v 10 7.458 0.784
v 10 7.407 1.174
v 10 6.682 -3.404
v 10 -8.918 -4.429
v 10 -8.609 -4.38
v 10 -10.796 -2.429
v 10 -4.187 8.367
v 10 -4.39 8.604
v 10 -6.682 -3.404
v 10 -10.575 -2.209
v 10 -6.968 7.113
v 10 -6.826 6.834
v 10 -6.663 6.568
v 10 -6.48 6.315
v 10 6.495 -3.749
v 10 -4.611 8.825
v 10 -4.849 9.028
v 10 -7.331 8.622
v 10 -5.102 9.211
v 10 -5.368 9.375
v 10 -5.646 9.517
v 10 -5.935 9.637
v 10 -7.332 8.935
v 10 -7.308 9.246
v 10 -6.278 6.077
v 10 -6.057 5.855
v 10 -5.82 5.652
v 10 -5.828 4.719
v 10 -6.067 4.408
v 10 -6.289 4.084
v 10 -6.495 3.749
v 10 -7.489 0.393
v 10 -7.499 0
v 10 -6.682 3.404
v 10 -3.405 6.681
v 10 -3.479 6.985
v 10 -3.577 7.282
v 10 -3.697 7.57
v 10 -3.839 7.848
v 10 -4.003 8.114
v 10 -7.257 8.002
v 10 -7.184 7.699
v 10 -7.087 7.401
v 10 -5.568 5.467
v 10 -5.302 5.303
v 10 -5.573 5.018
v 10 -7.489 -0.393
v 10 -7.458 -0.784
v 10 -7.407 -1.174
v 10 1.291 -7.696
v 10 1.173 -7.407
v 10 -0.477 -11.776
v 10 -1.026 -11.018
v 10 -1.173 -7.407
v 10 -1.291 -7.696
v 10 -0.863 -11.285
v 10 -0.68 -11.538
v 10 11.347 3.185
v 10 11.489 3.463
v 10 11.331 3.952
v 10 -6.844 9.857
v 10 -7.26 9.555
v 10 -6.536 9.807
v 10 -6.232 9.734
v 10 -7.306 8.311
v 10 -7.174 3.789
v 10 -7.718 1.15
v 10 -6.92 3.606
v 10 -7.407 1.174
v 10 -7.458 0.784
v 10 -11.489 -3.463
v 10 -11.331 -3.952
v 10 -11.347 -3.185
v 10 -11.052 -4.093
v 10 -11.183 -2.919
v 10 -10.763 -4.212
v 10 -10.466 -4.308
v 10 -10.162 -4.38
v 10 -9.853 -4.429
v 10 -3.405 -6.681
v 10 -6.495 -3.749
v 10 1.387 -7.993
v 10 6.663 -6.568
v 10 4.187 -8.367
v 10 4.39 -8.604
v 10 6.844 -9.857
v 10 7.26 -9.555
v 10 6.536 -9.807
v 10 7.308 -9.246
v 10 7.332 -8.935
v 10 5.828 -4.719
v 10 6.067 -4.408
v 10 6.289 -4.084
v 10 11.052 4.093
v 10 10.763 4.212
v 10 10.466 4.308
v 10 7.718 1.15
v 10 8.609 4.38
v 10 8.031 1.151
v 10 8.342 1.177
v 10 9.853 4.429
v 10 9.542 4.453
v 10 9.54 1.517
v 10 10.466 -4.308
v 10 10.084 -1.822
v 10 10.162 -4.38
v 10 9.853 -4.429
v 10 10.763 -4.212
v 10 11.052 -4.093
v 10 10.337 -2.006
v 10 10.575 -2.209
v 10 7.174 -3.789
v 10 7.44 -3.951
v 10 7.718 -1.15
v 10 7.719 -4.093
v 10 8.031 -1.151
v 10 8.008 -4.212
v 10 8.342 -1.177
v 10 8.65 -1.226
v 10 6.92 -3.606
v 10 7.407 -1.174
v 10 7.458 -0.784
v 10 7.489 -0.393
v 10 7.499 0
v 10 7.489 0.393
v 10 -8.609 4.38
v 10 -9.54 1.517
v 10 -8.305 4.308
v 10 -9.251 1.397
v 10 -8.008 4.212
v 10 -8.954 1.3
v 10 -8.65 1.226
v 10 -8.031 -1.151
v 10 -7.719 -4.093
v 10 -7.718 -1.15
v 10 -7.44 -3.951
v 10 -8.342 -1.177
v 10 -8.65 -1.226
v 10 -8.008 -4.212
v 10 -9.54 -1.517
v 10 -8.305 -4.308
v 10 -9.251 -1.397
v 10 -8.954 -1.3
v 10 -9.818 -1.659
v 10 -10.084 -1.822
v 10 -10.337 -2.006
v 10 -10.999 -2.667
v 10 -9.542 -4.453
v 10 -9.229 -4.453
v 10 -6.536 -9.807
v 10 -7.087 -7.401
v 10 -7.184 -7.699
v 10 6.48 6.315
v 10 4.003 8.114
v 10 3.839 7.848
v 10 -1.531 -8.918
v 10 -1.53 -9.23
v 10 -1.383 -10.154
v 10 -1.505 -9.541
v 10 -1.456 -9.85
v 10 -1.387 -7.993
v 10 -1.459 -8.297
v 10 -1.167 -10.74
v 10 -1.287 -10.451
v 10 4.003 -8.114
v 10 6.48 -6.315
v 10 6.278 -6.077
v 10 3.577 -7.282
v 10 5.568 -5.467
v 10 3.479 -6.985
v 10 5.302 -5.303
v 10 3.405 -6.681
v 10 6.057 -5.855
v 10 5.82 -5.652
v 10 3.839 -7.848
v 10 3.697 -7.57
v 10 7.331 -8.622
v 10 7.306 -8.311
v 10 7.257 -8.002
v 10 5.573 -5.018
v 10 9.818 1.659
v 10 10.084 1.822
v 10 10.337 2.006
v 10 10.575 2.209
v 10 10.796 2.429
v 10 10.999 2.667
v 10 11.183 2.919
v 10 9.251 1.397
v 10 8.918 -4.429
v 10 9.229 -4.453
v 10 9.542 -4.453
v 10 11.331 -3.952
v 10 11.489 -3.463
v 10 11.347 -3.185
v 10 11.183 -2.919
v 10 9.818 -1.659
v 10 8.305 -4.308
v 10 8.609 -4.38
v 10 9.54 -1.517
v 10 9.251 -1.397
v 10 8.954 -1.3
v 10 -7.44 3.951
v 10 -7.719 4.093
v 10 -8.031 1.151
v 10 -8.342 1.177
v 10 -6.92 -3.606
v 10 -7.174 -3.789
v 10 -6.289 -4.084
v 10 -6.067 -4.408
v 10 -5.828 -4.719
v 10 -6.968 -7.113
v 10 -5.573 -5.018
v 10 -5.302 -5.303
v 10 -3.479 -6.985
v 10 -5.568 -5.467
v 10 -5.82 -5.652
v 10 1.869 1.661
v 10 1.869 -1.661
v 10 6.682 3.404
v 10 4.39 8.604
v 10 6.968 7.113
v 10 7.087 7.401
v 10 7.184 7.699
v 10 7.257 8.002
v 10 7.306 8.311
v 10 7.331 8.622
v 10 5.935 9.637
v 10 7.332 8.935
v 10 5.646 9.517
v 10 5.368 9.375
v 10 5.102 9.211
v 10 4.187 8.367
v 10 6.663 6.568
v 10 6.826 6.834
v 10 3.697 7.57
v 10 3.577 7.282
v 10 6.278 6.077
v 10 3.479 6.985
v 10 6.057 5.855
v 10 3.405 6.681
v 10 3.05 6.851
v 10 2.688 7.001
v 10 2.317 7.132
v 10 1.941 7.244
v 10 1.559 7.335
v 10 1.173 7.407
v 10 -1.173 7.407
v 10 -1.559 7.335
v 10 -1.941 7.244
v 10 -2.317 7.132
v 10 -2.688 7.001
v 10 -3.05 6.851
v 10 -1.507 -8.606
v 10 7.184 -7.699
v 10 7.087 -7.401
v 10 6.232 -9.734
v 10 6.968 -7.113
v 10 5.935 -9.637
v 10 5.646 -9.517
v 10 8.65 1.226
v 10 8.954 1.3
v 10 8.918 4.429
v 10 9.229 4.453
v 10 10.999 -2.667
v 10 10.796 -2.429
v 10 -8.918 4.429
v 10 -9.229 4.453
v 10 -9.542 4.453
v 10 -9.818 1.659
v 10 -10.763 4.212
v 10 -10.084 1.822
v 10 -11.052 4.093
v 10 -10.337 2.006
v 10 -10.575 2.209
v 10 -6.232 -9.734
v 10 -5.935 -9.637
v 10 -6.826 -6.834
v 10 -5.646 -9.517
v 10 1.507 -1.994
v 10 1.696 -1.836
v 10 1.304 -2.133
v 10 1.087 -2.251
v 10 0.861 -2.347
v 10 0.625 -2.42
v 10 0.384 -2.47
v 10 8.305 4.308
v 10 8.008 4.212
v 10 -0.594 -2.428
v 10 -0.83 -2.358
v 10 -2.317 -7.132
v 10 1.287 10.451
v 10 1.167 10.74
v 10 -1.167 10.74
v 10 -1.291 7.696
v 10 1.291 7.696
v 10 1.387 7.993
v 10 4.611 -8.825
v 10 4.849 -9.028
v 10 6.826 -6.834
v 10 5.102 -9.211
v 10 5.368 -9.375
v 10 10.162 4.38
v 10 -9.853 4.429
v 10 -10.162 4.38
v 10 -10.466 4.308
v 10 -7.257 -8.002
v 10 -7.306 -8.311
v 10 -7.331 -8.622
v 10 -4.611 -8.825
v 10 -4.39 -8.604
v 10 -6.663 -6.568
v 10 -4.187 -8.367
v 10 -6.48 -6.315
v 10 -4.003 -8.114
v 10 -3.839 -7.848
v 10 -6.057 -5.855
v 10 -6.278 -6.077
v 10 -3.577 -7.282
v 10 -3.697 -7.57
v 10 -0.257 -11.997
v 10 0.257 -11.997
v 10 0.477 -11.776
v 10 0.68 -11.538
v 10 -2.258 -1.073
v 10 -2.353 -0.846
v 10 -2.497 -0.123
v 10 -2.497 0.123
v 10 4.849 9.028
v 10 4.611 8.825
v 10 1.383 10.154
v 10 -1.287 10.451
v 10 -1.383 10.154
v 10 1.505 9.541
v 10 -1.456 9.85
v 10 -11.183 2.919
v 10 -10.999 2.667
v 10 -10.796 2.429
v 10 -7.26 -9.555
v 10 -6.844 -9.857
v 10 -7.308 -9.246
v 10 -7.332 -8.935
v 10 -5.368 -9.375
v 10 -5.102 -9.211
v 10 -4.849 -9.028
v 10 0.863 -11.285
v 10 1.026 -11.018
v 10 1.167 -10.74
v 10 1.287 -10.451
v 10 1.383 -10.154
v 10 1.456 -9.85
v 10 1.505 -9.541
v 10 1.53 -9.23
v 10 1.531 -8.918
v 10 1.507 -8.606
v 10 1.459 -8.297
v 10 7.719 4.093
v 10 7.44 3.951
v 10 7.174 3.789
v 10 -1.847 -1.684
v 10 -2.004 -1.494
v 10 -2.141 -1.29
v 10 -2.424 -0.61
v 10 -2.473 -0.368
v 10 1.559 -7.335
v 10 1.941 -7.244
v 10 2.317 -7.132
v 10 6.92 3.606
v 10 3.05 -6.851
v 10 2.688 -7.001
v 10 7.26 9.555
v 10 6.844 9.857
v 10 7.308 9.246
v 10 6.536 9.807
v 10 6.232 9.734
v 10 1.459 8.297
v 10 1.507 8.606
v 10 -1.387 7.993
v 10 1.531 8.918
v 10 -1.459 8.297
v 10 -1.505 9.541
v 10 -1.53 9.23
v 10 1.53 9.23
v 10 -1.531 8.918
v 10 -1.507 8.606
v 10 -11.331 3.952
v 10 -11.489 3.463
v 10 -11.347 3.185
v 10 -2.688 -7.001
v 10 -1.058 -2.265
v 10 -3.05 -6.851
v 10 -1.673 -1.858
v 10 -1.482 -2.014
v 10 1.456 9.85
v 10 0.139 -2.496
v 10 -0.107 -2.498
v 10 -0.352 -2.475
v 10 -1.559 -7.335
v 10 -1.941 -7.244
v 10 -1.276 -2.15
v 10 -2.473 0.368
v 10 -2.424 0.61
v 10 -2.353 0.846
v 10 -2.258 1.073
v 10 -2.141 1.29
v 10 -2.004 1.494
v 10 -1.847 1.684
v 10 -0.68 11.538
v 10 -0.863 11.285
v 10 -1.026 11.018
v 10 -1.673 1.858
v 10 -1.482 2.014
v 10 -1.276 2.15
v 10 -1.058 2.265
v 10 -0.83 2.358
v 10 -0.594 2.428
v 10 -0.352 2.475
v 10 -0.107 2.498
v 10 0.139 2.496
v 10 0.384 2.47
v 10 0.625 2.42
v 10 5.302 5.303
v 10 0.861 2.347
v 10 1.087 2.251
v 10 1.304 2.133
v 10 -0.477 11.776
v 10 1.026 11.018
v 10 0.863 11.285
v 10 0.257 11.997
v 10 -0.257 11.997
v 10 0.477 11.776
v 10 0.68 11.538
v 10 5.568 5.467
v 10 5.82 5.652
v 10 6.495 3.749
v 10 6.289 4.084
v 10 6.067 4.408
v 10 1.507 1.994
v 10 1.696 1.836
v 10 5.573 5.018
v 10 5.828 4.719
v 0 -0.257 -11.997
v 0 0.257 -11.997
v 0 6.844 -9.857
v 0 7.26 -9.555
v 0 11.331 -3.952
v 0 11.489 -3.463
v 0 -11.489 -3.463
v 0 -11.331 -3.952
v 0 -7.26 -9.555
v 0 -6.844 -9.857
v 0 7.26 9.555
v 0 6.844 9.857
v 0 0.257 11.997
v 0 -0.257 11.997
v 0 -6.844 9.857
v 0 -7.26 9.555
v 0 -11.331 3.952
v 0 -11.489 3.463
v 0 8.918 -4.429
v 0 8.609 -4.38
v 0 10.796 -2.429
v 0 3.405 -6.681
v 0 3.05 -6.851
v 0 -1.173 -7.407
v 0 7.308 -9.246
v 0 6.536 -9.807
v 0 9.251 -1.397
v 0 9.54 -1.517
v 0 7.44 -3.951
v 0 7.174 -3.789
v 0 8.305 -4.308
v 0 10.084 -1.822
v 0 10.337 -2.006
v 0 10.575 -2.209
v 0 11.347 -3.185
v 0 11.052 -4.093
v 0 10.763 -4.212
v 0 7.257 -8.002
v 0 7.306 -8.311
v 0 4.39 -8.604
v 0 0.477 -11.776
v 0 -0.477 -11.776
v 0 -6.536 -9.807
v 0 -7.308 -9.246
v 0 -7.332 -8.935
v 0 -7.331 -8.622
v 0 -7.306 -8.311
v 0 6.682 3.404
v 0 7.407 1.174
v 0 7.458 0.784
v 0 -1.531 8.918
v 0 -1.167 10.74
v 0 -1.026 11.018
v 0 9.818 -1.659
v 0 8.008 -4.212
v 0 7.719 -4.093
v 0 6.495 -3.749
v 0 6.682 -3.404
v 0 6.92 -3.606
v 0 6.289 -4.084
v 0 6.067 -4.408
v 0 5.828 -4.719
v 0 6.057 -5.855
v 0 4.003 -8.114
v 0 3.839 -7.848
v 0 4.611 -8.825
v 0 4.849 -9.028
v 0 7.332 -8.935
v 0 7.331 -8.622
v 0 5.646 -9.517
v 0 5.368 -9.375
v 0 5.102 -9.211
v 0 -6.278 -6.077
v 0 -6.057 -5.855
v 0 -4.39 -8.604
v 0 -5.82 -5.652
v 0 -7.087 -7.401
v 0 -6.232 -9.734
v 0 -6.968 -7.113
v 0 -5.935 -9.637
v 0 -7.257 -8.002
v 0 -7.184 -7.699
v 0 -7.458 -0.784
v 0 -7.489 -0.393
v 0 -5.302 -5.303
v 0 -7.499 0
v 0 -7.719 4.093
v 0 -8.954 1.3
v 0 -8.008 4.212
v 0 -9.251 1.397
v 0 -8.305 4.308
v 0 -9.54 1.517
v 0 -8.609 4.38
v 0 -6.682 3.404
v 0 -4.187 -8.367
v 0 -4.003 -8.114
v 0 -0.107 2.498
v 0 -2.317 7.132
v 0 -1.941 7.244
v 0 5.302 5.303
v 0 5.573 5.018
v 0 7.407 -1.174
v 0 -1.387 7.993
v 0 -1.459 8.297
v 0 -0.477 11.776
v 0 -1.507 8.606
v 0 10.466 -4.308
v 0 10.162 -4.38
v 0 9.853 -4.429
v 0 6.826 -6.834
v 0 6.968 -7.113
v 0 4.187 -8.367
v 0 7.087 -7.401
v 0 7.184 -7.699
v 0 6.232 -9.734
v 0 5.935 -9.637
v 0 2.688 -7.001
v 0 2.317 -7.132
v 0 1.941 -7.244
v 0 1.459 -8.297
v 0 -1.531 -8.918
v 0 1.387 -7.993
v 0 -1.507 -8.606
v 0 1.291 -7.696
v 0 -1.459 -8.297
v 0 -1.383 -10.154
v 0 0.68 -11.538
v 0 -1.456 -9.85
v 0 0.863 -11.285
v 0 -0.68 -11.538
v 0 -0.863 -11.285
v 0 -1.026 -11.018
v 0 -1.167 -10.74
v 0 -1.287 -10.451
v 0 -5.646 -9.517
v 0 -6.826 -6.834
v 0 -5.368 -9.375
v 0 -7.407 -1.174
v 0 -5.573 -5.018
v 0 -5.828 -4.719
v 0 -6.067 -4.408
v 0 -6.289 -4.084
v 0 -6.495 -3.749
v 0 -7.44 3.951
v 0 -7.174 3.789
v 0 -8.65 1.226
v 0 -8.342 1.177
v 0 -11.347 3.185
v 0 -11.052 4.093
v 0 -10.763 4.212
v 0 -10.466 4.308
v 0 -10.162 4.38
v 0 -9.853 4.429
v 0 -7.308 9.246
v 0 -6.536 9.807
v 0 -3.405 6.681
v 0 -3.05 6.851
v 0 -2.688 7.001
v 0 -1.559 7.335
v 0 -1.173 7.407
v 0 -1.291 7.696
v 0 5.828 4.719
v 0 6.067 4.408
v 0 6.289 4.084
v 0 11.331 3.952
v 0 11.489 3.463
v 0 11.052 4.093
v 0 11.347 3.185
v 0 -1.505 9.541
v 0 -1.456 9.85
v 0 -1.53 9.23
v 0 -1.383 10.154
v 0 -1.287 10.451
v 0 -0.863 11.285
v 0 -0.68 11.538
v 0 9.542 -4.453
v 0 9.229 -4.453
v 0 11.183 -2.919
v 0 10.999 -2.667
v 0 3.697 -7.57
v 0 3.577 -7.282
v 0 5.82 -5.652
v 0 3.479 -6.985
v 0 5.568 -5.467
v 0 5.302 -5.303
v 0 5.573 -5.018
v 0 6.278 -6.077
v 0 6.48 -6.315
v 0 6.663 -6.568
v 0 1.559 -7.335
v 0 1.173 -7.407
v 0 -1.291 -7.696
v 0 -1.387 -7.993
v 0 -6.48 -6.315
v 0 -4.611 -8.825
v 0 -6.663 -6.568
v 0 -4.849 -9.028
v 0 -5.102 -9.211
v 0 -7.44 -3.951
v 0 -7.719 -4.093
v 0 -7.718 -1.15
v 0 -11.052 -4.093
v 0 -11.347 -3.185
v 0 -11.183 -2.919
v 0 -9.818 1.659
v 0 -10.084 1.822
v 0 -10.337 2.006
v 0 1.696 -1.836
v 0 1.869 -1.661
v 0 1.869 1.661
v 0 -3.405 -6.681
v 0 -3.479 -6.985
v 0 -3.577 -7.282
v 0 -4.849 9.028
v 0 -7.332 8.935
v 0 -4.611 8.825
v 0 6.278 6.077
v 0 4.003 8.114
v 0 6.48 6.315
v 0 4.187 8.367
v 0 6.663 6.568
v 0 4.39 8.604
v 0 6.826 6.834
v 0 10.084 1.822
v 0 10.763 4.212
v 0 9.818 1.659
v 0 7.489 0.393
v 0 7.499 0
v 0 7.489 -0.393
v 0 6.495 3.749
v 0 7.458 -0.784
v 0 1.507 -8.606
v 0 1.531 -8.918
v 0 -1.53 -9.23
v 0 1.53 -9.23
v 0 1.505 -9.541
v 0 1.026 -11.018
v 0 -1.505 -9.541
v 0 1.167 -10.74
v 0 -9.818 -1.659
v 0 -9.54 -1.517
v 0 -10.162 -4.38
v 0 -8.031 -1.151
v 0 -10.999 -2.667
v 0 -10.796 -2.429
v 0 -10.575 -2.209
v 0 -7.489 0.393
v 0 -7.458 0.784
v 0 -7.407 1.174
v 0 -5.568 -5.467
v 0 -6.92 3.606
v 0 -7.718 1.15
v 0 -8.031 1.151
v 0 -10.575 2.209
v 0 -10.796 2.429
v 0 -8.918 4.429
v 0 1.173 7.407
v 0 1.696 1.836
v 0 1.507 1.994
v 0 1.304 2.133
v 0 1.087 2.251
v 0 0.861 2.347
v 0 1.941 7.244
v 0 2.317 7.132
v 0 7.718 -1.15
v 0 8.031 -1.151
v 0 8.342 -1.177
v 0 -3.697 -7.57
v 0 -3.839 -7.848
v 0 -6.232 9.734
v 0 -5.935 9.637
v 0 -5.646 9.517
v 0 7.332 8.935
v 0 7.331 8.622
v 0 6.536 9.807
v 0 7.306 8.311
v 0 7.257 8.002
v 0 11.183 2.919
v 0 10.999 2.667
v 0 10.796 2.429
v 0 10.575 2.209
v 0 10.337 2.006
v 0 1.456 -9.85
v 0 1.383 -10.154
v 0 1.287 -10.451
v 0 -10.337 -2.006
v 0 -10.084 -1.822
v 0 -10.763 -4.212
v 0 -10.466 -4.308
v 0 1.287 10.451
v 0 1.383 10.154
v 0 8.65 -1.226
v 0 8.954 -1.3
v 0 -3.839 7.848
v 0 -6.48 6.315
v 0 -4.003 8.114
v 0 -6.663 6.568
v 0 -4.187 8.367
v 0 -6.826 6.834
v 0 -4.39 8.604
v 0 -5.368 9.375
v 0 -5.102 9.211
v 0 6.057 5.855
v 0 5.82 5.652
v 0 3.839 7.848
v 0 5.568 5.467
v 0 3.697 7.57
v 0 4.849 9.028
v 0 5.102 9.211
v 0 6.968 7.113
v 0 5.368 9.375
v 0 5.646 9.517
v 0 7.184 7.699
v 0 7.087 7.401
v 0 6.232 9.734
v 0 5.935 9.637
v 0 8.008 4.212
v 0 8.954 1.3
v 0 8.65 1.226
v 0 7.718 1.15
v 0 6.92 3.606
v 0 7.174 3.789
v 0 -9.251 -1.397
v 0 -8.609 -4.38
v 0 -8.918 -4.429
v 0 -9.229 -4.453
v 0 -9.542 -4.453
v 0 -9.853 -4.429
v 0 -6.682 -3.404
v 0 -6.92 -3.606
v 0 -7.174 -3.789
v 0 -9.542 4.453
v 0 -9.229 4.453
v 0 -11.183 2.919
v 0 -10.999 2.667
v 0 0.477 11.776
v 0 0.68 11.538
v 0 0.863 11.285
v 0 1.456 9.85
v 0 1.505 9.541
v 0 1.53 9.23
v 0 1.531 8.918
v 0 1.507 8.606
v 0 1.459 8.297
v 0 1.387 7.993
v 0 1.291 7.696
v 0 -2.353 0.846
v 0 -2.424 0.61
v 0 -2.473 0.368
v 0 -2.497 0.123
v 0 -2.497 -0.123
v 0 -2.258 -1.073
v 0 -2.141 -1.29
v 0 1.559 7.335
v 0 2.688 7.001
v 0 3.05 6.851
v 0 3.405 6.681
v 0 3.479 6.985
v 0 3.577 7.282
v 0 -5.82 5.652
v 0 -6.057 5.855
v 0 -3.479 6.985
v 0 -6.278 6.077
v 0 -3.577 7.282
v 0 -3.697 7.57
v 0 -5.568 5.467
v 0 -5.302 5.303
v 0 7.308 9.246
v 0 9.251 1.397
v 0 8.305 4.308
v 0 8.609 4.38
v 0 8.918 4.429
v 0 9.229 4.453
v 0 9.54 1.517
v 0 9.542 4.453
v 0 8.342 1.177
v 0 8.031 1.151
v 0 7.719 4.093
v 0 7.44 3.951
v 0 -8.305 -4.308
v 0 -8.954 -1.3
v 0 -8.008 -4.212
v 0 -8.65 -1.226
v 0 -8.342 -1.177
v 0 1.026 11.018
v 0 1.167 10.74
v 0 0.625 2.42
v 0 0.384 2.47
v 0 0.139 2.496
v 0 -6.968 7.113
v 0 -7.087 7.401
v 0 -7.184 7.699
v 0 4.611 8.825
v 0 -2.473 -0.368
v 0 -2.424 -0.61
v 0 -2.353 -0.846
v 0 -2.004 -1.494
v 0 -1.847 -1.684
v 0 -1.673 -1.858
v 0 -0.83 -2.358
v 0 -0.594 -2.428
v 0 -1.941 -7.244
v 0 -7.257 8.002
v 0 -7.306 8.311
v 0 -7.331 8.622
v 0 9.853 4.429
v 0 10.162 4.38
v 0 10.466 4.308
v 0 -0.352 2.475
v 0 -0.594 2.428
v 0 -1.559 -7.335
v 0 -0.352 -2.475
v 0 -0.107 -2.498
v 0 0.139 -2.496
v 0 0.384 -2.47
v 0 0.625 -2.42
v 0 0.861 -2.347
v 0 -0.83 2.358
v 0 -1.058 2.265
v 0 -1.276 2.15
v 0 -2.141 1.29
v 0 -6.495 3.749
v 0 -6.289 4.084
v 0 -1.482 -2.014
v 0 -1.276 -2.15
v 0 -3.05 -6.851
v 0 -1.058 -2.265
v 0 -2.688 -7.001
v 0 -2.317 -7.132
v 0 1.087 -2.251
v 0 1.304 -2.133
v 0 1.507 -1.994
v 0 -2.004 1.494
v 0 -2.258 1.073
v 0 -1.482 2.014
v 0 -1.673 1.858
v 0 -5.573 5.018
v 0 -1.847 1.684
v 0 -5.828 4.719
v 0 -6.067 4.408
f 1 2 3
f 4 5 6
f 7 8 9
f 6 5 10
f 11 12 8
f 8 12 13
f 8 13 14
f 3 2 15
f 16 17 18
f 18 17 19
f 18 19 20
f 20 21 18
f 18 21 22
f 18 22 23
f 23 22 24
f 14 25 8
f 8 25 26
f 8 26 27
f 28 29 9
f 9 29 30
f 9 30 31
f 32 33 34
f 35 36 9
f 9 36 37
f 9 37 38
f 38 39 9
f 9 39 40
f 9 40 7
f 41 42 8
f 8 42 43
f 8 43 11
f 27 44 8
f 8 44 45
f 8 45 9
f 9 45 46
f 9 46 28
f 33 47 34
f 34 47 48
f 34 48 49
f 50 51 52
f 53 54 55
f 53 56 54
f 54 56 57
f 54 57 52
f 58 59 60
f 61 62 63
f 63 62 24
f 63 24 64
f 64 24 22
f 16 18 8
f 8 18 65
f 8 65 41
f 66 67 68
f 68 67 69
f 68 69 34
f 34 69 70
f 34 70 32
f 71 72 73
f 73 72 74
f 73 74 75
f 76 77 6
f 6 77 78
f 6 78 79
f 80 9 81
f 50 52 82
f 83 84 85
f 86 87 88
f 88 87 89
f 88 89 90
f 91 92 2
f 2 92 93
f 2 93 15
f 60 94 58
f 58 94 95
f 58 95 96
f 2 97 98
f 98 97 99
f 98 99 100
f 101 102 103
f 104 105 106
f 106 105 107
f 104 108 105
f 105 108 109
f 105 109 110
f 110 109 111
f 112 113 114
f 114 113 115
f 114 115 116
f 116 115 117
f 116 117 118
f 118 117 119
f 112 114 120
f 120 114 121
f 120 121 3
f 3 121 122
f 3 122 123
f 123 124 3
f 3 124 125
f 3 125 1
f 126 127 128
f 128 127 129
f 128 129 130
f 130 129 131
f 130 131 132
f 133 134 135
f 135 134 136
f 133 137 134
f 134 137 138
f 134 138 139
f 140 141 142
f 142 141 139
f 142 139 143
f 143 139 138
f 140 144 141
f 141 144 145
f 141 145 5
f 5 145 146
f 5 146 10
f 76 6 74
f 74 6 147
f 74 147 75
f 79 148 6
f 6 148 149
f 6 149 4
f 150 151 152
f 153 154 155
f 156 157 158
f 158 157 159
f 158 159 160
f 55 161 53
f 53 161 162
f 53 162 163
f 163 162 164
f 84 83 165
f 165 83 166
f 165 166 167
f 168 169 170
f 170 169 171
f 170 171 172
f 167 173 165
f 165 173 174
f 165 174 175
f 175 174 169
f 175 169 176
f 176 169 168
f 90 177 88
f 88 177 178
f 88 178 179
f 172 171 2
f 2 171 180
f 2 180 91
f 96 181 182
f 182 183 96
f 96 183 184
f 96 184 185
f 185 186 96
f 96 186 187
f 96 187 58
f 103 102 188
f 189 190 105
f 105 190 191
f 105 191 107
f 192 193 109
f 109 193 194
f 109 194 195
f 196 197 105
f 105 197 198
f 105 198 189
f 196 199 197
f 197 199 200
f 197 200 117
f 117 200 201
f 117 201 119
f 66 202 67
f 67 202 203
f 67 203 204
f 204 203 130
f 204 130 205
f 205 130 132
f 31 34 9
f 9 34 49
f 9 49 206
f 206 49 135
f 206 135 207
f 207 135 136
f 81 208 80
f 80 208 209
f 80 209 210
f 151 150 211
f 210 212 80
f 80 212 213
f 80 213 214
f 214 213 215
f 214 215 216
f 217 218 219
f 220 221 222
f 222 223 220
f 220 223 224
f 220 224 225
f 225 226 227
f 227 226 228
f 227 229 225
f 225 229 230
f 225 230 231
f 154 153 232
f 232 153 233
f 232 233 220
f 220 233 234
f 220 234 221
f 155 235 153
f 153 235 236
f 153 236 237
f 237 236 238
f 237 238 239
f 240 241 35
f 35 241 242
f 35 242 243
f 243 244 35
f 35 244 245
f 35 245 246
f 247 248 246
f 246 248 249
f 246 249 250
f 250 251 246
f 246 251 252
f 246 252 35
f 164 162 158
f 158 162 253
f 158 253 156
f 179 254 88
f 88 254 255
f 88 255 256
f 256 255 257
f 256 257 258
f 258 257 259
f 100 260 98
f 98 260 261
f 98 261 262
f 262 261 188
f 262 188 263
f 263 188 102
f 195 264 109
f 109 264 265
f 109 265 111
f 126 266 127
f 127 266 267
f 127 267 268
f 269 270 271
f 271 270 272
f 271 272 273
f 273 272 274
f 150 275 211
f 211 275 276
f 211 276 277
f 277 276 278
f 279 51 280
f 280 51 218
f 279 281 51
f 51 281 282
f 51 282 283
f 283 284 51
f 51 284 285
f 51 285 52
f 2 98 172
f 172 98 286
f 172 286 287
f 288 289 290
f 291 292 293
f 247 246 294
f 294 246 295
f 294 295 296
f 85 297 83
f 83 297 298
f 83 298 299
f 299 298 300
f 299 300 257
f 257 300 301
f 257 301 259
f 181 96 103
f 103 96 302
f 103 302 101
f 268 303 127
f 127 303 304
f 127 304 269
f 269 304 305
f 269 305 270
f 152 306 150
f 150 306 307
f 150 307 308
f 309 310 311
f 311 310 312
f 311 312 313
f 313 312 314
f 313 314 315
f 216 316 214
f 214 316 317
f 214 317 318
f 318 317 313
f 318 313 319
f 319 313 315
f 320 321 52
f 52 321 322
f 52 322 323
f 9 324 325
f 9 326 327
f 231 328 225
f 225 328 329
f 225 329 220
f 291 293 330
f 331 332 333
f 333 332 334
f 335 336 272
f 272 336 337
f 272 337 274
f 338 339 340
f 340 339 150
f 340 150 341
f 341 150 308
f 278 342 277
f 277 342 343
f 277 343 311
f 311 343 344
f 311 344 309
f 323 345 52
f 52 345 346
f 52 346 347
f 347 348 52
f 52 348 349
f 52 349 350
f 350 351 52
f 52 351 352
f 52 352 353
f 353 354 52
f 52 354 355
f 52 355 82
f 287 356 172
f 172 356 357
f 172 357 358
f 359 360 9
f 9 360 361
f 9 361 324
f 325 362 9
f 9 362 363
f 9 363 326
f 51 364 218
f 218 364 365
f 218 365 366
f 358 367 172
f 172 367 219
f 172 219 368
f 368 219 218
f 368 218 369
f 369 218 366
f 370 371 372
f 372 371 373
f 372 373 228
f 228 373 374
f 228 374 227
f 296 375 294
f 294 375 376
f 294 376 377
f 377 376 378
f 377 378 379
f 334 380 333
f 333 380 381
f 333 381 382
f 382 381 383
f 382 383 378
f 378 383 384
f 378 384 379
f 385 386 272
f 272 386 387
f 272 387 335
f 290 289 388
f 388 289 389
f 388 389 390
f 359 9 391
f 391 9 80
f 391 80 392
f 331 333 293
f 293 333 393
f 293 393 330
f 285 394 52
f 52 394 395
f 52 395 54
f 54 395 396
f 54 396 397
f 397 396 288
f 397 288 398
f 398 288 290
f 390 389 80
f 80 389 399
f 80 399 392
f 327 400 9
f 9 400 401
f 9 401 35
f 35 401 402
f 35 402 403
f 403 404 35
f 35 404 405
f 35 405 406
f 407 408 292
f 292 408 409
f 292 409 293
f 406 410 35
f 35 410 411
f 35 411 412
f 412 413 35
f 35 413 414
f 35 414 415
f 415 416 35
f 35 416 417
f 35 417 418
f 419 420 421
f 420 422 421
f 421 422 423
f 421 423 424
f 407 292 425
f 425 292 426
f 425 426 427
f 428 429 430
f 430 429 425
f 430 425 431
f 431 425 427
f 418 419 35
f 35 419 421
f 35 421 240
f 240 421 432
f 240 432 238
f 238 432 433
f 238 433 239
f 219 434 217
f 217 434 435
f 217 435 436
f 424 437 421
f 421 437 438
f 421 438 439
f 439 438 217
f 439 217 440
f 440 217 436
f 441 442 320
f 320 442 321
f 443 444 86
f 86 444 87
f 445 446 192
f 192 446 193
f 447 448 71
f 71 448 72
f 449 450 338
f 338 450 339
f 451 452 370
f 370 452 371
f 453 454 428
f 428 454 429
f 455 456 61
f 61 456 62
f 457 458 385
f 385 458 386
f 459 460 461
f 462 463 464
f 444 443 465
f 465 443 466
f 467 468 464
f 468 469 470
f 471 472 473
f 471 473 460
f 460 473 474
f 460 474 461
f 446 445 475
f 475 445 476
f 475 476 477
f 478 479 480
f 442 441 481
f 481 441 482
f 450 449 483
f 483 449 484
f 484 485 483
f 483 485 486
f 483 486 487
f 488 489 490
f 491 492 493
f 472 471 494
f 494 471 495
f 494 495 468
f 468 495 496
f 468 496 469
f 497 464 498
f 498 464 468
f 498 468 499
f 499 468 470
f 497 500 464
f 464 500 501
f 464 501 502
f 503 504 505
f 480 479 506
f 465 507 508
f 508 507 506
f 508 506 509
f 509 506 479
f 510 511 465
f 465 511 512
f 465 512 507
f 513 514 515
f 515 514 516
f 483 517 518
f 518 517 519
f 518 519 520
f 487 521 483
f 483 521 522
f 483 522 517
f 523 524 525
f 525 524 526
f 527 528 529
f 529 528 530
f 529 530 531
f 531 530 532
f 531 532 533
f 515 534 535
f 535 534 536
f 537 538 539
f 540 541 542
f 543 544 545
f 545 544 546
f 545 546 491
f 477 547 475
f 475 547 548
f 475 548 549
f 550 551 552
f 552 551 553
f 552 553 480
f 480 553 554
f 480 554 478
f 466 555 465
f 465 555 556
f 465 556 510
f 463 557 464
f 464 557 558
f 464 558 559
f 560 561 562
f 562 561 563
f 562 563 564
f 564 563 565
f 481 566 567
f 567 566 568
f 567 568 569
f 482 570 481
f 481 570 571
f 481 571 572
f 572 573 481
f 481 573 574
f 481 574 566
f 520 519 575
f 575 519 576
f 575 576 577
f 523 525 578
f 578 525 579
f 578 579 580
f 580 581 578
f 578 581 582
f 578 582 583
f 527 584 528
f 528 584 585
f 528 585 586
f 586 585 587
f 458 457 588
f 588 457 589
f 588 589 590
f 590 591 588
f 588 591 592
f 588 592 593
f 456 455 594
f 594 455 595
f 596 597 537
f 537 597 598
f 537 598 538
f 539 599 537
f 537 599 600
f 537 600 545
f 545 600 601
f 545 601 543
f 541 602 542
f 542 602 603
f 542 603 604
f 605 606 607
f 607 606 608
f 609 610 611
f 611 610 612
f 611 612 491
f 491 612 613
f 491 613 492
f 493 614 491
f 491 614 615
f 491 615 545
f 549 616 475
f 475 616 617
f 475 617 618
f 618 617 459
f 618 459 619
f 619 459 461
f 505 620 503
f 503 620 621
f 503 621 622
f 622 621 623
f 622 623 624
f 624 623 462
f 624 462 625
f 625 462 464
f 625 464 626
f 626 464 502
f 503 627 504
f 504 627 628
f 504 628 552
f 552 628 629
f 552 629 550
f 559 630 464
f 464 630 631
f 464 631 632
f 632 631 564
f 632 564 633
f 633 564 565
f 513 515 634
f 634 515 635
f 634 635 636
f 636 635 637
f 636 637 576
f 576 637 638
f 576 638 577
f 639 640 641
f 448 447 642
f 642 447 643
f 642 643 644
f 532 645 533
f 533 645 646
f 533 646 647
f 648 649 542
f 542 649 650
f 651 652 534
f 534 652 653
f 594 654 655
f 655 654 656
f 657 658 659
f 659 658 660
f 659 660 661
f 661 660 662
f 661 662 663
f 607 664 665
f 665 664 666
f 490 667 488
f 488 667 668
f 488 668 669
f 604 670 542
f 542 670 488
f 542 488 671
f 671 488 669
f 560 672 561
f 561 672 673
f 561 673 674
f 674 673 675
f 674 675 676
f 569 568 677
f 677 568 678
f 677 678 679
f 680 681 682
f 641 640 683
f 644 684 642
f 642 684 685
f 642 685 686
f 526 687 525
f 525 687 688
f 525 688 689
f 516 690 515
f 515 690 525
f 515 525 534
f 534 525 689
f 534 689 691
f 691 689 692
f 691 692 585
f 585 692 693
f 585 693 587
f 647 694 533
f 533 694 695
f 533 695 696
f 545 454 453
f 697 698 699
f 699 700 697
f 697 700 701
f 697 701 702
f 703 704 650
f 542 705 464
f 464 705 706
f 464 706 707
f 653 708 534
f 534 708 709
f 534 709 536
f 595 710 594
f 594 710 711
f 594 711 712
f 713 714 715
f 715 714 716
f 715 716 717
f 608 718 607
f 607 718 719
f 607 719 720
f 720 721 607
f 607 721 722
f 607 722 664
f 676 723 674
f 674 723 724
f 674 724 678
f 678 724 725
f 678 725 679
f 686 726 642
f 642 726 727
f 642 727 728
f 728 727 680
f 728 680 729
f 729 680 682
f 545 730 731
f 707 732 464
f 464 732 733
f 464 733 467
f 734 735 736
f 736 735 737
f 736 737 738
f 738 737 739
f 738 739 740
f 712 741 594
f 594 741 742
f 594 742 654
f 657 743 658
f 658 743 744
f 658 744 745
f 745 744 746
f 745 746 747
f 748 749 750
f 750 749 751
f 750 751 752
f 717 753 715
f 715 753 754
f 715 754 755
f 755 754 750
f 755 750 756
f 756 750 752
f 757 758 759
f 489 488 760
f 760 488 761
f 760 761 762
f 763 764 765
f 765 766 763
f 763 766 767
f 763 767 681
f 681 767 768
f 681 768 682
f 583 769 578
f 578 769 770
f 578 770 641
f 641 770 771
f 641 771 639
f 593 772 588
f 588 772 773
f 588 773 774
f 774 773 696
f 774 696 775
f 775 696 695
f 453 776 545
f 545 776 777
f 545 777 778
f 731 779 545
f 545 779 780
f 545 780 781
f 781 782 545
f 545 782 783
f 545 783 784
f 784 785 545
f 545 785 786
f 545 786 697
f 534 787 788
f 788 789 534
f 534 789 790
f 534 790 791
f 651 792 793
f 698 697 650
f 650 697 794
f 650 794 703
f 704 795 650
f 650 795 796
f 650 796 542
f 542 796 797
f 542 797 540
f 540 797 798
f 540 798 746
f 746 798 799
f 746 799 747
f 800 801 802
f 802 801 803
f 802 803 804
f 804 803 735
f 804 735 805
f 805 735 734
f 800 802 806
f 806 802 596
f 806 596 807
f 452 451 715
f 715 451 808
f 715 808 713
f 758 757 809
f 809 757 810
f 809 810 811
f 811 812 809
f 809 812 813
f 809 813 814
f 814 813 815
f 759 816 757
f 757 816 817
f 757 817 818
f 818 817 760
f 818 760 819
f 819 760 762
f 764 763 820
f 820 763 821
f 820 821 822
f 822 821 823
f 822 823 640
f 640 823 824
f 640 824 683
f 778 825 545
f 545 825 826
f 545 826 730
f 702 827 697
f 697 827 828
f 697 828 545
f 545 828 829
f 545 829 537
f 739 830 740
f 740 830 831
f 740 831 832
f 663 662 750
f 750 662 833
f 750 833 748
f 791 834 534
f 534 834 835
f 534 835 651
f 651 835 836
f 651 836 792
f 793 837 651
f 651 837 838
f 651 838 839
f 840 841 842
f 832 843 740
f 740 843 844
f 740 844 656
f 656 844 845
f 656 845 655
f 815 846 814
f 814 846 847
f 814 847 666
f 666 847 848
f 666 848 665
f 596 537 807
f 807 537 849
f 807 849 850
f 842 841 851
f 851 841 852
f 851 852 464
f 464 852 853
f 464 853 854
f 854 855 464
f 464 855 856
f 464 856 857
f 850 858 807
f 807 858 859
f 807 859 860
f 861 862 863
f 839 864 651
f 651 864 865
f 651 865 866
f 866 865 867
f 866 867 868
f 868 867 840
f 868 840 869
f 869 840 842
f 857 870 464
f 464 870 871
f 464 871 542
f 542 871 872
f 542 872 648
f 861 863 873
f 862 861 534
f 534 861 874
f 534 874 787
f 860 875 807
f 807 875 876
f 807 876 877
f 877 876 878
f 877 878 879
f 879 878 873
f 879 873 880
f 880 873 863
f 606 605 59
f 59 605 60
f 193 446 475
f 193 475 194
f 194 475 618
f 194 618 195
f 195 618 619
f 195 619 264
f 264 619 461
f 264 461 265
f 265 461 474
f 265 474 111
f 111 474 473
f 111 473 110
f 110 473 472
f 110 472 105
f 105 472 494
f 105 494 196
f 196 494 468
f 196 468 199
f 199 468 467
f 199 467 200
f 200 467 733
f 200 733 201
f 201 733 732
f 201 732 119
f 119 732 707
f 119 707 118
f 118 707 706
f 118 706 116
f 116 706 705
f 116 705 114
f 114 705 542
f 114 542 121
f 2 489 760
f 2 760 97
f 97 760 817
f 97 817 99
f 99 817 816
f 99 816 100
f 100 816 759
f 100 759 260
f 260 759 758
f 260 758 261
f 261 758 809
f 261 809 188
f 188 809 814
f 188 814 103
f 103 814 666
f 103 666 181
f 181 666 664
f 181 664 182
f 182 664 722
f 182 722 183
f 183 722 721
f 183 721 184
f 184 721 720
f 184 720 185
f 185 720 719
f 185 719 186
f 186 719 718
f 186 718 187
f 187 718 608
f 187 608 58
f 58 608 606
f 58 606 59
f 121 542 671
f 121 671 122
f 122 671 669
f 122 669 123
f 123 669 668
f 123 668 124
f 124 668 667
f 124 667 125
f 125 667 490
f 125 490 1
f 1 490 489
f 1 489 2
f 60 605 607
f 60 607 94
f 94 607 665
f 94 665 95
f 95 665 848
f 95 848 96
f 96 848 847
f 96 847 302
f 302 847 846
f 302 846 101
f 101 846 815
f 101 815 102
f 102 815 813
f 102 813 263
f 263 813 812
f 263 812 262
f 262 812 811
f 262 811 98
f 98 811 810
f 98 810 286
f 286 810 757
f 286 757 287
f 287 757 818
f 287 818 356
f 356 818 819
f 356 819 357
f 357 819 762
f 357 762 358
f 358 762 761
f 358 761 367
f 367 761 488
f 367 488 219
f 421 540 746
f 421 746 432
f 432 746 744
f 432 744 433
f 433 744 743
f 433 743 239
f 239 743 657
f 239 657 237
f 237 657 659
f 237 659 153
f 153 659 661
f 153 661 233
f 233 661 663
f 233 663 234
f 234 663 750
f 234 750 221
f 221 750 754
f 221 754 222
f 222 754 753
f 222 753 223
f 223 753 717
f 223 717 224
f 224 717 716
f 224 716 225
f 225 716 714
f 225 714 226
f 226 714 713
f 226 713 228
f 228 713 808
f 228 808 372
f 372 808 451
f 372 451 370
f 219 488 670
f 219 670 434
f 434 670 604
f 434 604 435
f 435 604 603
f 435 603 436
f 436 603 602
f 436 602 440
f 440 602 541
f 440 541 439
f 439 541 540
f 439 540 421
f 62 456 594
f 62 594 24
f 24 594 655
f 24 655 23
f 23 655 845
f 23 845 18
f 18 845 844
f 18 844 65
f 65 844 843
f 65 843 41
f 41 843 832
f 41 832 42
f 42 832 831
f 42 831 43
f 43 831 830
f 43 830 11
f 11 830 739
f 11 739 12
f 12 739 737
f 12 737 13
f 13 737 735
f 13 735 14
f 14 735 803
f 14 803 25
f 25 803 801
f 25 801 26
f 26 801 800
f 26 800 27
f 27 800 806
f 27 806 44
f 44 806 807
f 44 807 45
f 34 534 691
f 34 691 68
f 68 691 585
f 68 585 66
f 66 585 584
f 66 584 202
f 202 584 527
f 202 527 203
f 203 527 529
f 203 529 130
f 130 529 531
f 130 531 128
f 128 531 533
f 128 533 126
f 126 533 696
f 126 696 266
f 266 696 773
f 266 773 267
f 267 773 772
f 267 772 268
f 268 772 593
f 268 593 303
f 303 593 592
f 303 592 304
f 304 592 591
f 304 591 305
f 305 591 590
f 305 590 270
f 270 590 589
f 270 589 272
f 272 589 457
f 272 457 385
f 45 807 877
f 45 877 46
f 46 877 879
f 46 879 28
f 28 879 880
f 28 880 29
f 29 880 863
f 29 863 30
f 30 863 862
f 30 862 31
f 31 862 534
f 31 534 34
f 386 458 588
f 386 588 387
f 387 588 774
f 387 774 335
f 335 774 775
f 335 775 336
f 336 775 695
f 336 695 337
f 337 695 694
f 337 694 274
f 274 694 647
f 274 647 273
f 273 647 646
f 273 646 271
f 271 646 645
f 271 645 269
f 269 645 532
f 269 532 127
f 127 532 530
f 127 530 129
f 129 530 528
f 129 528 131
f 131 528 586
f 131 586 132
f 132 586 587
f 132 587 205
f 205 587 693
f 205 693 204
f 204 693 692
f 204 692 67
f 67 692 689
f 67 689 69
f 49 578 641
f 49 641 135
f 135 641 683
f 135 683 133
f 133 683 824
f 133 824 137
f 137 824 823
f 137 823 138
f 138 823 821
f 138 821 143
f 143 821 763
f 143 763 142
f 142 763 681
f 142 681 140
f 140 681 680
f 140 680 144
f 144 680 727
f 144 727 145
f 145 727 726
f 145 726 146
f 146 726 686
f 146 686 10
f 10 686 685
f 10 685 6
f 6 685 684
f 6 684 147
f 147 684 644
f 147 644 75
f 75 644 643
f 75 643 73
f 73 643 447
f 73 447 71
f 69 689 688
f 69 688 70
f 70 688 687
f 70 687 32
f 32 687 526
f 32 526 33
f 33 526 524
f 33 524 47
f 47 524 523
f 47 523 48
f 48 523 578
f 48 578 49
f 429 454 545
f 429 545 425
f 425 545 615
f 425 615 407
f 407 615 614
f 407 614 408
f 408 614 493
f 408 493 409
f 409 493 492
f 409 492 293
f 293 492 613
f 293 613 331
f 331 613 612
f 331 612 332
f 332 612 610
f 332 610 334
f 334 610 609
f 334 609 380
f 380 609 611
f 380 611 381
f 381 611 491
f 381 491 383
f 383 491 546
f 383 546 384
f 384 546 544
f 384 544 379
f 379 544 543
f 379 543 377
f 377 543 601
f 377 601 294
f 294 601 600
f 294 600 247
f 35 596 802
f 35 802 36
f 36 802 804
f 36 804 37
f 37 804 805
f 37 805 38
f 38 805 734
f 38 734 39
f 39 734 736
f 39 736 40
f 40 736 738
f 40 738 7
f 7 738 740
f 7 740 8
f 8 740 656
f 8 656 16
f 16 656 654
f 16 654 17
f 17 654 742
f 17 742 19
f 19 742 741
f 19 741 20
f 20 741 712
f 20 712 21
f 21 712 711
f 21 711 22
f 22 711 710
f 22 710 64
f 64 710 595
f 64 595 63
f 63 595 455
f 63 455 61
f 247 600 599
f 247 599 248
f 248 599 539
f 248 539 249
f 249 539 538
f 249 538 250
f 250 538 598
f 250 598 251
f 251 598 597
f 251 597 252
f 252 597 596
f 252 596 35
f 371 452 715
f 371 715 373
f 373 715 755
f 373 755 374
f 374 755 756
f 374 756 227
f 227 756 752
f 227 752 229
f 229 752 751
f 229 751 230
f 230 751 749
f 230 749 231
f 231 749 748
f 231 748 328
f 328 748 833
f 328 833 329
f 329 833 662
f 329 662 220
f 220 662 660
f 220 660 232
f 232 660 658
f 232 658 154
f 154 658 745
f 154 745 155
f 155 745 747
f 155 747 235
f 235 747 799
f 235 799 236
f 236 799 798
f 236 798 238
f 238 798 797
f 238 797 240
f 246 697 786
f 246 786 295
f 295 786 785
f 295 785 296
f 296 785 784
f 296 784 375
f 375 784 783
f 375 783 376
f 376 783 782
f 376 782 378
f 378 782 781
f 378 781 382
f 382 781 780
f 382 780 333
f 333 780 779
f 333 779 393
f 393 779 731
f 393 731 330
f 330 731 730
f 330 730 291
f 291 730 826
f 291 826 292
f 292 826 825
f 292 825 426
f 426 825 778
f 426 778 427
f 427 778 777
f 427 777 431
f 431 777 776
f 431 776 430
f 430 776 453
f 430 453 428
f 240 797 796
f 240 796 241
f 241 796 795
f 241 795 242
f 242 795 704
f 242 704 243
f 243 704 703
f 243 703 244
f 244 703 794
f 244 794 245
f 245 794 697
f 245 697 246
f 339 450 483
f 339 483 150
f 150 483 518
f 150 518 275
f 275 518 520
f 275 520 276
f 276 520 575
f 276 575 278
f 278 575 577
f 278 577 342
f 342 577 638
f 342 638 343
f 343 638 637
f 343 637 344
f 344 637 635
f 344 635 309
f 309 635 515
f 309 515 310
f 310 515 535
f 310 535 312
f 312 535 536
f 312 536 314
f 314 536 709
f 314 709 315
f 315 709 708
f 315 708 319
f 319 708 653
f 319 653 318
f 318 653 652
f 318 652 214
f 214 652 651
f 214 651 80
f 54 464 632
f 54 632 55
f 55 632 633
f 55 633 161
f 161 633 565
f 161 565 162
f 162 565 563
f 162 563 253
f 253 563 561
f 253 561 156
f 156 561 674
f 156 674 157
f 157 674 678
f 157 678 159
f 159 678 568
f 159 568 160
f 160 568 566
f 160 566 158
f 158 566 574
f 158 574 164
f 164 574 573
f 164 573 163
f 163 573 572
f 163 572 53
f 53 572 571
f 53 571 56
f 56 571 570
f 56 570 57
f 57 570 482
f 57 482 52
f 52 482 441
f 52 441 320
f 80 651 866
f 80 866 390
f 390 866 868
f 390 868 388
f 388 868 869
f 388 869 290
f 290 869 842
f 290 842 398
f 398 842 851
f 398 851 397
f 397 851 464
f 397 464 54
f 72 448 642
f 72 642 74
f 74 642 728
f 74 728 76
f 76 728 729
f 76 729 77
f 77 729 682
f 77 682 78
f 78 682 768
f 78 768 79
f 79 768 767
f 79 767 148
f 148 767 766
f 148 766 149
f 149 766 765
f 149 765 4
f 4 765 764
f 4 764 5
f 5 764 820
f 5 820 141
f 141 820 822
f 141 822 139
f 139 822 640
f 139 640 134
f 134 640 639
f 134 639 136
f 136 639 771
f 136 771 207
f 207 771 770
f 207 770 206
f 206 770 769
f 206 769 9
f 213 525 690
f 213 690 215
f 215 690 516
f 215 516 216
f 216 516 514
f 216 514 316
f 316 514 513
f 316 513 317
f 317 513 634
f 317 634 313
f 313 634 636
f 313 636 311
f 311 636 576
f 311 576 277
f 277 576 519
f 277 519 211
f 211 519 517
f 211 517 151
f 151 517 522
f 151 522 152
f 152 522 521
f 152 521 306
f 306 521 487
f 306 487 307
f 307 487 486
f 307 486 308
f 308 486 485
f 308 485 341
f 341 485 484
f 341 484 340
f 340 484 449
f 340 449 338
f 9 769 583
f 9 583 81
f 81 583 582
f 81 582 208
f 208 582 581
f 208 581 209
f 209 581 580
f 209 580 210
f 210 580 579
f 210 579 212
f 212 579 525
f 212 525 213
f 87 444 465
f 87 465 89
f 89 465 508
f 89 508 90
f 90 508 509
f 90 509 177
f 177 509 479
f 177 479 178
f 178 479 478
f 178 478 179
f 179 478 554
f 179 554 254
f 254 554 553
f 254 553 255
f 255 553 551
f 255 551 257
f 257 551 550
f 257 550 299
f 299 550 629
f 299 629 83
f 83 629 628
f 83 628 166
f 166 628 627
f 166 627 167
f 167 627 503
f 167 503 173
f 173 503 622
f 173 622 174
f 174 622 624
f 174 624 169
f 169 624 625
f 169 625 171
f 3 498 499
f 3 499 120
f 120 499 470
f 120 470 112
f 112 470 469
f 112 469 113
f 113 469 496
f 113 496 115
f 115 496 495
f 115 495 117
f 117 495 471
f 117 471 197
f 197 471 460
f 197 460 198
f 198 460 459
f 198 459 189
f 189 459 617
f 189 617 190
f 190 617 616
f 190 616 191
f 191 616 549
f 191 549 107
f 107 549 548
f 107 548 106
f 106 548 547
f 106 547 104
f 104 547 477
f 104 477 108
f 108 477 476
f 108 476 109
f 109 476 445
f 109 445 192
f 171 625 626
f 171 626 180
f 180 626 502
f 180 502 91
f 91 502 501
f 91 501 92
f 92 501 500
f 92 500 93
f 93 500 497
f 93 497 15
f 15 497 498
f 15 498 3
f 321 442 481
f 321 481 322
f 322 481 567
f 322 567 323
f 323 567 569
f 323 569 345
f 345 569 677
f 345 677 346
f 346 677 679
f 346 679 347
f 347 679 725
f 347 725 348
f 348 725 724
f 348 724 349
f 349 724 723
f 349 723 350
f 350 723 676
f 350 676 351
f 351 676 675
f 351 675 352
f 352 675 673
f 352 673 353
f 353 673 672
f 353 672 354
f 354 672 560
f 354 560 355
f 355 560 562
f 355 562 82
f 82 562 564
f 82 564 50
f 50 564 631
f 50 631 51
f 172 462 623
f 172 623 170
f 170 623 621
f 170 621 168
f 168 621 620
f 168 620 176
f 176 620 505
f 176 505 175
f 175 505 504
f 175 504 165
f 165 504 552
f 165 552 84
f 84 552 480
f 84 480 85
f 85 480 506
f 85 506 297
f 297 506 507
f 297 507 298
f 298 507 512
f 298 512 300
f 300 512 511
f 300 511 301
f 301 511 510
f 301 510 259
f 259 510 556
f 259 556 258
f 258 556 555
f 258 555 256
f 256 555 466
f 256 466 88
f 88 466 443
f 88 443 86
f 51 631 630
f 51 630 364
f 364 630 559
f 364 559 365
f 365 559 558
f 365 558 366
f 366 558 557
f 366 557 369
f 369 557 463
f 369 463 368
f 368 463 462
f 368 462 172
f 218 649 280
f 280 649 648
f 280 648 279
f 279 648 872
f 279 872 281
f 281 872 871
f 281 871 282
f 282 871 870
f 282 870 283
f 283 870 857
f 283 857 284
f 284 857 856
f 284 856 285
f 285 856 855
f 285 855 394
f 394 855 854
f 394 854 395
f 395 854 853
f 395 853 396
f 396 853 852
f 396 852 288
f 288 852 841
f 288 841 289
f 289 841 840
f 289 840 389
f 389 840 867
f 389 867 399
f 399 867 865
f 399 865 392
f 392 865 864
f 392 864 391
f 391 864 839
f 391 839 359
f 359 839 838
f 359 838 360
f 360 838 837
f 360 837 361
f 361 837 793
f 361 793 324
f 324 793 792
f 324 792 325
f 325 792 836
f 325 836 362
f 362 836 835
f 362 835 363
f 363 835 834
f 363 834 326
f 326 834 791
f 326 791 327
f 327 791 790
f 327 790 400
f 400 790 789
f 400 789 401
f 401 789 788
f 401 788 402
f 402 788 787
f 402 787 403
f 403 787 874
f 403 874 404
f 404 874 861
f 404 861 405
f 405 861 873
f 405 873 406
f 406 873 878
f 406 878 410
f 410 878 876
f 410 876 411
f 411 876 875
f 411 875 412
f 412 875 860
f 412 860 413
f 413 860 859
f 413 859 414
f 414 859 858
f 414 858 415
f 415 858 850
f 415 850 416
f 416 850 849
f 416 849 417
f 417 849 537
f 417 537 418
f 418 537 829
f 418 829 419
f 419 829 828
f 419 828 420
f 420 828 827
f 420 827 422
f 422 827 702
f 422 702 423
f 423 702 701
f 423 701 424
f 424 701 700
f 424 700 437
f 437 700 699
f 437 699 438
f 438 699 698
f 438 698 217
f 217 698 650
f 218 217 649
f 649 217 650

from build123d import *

# Parameters (mm, degrees)
BASPROSKE_W         = 10
BASPROSKE_H         = 12
TOOTHCUT_DEPTH      = 20.697715604
TEETHCUTS_COUNT     = 10
TEETHCUTS_ANGLE     = 324
BORSKE_R            = 2.5
BORE_DEPTH          = 50.0000508
BOSS_EXTRUDE1_DEPTH = 10


with BuildPart() as part:
    # BasProSke → Base-Revolve (revolve)
    with BuildSketch(Plane(origin=(0, 0, 0), x_dir=(1, 0, 0), z_dir=(0, 1, 0)), mode=Mode.PRIVATE) as base_revolve_sk:
        with Locations((5, 6)):
            Rectangle(BASPROSKE_W, BASPROSKE_H)
    revolve(base_revolve_sk.sketch.rotate(Axis((-10, 0, 0), (1, 0, 0)), 180), axis=Axis((-10, 0, 0), (1, 0, 0)))

    # TooCutSke → ToothCut (cut, through all)
    with BuildSketch(Plane(origin=(0, 0, 0), x_dir=(0, 0, -1), z_dir=(1, 0, 0))):
        with BuildLine():
            ThreePointArc((1.173662691, 7.406586048), (0, 7.499), (-1.173662691, 7.406586048))
            ThreePointArc((-1.173662691, 7.406586048), (-1.668191438, 9.834565786), (-3.497907776, 11.50542856))
            ThreePointArc((-3.497907776, 11.50542856), (0, 12.0254), (3.497907776, 11.50542856))
            ThreePointArc((3.497907776, 11.50542856), (1.668191438, 9.834565786), (1.173662691, 7.406586048))
        make_face()
    toothcut = extrude(amount=TOOTHCUT_DEPTH, mode=Mode.SUBTRACT)

    # TeethCuts: ToothCut ×10 about axis
    teethcuts_axis = Axis((-10, 0, 0), (1, 0, 0))
    for i in range(1, TEETHCUTS_COUNT):
        add(toothcut.rotate(teethcuts_axis, i * TEETHCUTS_ANGLE / (TEETHCUTS_COUNT - 1)), mode=Mode.SUBTRACT)

    # BorSke → Bore (cut, symmetric)
    with BuildSketch(Plane(origin=(0, 0, 0), x_dir=(0, 0, -1), z_dir=(1, 0, 0))):
        with Locations(Location((0, 0, 0), (0, 0, 180))):
            Circle(BORSKE_R)
    extrude(amount=BORE_DEPTH, both=True, mode=Mode.SUBTRACT)

    # Sketch1 → Boss-Extrude1 (add)
    with BuildSketch(Plane(origin=(10, 0, 0), x_dir=(0, 0, -1), z_dir=(1, 0, 0))):
        with BuildLine():
            Line((-1.660598254, 1.8688), (1.660598254, 1.8688))
            ThreePointArc((1.660598254, 1.8688), (0, 2.5), (-1.660598254, 1.8688))
        make_face()
    extrude(amount=-BOSS_EXTRUDE1_DEPTH)


solid = part.part
